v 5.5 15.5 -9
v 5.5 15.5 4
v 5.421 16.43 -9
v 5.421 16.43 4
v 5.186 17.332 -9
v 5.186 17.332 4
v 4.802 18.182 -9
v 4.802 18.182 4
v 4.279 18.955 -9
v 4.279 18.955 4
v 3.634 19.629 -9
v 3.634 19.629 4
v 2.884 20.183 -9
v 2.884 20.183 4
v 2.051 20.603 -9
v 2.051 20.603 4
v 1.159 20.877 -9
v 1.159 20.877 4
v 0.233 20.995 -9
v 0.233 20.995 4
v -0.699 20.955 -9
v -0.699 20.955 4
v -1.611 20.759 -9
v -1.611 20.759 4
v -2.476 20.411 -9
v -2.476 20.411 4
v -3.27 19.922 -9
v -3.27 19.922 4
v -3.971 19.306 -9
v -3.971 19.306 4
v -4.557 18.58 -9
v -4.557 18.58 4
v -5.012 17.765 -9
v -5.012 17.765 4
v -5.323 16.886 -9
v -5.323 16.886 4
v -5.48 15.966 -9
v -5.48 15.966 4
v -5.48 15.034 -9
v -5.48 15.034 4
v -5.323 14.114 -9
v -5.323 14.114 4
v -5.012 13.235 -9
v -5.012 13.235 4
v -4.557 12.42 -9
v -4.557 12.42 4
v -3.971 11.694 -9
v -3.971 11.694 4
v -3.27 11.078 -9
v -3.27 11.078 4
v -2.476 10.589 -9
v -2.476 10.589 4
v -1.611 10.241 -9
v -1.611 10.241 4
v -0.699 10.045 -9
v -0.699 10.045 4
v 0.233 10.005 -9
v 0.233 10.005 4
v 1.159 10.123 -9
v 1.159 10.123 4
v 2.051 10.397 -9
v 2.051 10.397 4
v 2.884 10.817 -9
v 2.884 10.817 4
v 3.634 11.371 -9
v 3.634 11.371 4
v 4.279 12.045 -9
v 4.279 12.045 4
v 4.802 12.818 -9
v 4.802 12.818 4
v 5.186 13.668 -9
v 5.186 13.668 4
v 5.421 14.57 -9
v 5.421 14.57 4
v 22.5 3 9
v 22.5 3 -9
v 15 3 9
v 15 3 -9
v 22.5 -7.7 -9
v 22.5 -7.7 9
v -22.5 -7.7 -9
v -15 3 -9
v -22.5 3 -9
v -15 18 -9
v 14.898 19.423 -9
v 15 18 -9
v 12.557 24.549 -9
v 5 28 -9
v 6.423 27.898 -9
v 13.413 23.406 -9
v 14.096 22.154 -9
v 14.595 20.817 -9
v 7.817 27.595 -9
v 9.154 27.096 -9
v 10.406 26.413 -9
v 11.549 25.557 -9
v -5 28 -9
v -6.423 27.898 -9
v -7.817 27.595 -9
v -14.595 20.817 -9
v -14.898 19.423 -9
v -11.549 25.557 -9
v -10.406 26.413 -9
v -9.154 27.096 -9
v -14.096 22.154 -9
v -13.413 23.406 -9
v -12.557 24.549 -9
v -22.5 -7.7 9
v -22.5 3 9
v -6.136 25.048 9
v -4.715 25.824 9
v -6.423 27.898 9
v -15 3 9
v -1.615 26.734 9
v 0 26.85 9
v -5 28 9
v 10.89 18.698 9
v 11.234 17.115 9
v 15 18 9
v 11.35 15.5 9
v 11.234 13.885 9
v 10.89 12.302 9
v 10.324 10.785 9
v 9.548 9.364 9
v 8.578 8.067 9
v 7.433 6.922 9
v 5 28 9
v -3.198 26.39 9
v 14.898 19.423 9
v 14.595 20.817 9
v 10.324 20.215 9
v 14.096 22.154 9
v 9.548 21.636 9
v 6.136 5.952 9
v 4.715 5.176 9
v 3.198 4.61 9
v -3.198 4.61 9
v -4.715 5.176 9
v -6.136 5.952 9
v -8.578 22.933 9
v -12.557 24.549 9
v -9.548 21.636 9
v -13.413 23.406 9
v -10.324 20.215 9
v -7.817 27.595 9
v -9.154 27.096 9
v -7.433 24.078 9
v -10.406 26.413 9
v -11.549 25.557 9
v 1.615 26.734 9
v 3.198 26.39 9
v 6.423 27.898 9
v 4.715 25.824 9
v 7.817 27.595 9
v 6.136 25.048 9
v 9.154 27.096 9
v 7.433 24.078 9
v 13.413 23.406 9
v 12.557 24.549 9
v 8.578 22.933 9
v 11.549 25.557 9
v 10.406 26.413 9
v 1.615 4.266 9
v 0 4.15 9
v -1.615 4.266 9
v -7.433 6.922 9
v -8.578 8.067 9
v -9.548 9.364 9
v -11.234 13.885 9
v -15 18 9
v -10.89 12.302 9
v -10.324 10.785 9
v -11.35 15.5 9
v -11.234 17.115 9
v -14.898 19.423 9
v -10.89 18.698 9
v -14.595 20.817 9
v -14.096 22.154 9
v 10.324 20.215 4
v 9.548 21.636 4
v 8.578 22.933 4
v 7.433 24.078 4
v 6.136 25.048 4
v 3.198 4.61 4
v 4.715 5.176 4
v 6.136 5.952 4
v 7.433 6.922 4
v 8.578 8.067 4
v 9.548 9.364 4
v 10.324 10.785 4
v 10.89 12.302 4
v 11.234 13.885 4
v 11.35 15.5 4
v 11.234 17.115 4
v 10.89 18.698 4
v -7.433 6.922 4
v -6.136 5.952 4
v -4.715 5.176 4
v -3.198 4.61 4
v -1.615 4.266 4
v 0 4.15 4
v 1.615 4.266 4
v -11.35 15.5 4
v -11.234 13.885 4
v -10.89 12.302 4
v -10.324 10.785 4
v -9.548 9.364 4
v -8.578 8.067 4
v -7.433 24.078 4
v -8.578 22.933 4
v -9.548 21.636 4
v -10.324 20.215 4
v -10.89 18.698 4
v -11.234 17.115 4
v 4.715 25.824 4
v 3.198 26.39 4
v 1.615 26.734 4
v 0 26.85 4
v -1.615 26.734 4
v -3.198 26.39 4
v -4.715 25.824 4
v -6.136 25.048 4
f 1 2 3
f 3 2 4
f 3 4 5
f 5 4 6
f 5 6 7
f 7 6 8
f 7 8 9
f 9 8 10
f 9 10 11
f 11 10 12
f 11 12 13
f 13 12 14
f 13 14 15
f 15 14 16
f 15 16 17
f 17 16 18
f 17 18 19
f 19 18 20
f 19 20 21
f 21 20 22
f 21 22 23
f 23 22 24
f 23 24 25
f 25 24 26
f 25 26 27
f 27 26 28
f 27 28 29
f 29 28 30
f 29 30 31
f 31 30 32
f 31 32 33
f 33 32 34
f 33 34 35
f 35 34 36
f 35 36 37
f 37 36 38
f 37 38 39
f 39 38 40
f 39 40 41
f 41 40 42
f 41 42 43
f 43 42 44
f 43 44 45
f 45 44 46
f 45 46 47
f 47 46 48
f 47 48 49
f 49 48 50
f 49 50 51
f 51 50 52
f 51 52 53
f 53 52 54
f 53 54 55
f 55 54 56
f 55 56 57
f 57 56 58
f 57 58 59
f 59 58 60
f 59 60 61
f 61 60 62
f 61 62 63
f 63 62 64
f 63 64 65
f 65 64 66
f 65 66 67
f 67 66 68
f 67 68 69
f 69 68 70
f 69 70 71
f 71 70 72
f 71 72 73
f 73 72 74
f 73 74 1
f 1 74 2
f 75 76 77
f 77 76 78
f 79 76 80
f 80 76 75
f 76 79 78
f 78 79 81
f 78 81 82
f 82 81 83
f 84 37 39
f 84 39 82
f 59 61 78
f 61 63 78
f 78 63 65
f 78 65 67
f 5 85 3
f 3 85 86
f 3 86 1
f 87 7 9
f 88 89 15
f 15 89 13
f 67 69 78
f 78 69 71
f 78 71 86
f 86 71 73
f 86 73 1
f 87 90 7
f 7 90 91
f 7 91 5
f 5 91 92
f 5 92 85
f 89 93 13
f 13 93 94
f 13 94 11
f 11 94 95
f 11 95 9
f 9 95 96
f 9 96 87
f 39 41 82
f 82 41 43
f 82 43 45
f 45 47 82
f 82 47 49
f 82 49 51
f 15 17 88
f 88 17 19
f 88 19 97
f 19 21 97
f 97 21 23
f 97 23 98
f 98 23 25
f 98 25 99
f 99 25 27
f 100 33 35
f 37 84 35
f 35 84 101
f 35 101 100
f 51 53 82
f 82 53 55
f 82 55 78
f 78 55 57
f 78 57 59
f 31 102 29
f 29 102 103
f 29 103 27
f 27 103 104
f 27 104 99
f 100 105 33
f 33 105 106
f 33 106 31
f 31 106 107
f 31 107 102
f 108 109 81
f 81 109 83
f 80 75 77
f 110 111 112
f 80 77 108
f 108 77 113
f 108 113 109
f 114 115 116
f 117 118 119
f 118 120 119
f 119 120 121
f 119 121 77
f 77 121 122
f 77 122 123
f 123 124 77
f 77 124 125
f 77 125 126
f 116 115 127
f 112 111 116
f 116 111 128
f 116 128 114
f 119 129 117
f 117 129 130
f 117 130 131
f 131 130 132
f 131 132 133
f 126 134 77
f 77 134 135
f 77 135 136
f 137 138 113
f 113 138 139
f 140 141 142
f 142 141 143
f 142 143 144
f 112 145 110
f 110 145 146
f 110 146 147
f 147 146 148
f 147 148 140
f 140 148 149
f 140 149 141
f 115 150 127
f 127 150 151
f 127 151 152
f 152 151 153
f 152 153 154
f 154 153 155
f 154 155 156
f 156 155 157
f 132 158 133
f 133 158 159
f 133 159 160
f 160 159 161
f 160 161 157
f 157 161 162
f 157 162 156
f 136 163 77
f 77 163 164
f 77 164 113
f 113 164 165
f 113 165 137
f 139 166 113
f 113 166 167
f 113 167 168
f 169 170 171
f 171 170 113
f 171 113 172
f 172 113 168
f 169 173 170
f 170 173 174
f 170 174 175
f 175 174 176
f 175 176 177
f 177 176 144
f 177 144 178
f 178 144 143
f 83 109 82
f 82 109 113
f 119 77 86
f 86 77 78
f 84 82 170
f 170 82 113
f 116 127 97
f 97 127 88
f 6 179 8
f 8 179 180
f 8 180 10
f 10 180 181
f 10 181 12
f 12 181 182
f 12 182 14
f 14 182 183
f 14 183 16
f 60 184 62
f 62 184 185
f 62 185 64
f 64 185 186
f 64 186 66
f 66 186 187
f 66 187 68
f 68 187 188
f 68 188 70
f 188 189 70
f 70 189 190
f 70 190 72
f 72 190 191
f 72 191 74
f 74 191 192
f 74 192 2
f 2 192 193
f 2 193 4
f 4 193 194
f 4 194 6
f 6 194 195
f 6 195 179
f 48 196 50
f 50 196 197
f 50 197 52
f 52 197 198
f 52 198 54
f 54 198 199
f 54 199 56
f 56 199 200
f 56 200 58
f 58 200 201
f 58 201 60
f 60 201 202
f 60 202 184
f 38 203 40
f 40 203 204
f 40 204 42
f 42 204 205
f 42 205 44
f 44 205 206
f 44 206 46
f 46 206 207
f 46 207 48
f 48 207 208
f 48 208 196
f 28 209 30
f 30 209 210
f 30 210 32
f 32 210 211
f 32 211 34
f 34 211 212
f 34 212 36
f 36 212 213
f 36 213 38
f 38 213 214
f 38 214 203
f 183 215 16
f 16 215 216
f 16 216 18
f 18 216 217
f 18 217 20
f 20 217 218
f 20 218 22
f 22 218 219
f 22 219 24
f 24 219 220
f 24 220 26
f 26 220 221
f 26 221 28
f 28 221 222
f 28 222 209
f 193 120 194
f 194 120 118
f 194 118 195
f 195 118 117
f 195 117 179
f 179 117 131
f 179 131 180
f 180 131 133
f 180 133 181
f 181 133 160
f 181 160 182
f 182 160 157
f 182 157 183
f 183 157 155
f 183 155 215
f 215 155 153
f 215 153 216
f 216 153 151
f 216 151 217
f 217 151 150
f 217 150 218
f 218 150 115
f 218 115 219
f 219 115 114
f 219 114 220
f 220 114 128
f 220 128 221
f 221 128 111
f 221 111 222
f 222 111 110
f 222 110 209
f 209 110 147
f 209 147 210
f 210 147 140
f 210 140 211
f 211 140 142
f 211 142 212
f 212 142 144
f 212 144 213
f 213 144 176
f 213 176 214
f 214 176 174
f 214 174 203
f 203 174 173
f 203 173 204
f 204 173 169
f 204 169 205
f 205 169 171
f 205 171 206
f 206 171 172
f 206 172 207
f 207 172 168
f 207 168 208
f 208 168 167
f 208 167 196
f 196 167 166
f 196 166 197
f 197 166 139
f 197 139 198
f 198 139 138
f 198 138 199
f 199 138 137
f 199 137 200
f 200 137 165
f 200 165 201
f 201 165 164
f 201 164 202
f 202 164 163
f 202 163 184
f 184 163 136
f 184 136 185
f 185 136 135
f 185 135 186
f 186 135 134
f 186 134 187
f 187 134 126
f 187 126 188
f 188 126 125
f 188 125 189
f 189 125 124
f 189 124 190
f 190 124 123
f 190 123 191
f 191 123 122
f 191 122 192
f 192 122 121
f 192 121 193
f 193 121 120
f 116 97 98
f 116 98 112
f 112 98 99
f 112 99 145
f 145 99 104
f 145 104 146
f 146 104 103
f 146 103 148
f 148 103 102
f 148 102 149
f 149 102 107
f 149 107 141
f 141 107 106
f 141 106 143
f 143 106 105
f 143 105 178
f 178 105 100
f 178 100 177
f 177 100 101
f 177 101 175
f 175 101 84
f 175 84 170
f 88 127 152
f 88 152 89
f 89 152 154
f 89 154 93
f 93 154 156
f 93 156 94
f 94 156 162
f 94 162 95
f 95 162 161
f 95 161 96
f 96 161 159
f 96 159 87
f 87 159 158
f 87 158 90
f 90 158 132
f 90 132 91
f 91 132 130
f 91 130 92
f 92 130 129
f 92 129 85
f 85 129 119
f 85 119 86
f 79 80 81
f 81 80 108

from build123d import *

# Parameters (mm, degrees)
SKETCH1_W           = 45
SKETCH1_H           = 18
BOSS_EXTRUDE1_DEPTH = 3
SKETCH2_W           = 30
SKETCH2_H           = 18
BOSS_EXTRUDE3_DEPTH = 25
SKETCH5_R           = 5.5
CUT_EXTRUDE3_DEPTH  = 25
SKETCH6_R           = 11.35
CUT_EXTRUDE4_DEPTH  = 5
FILLET2_R           = 10
SKETCH7_W           = 45
SKETCH7_H           = 18
BOSS_EXTRUDE4_DEPTH = 4
SKETCH8_W           = 45
SKETCH8_H           = 18
BOSS_EXTRUDE5_DEPTH = 3.7


with BuildPart() as part:
    # Sketch1 → Boss-Extrude1 (new body)
    with BuildSketch(Plane(origin=(0, 0, 0), x_dir=(1, 0, 0), z_dir=(0, 1, 0))):
        Rectangle(SKETCH1_W, SKETCH1_H)
    extrude(amount=BOSS_EXTRUDE1_DEPTH)

    # Sketch2 → Boss-Extrude3 (add)
    with BuildSketch(Plane(origin=(0, 3, 0), x_dir=(1, 0, 0), z_dir=(0, 1, 0))):
        Rectangle(SKETCH2_W, SKETCH2_H)
    extrude(amount=BOSS_EXTRUDE3_DEPTH)

    # Sketch5 → Cut-Extrude3 (cut)
    with BuildSketch(Plane.XY.offset(9)):
        with Locations((0, 15.5)):
            Circle(SKETCH5_R)
    extrude(amount=-CUT_EXTRUDE3_DEPTH, mode=Mode.SUBTRACT)

    # Sketch6 → Cut-Extrude4 (cut)
    with BuildSketch(Plane.XY.offset(9)):
        with Locations((0, 15.5)):
            Circle(SKETCH6_R)
    extrude(amount=-CUT_EXTRUDE4_DEPTH, mode=Mode.SUBTRACT)

    # Fillet2
    fillet2_edges = [part.edges().sort_by_distance(p)[0] for p in [
        (15, 28, 0),
        (-15, 28, 0),
    ]]
    fillet(fillet2_edges, radius=FILLET2_R)

    # Sketch7 → Boss-Extrude4 (add)
    with BuildSketch(Plane.XZ):
        Rectangle(SKETCH7_W, SKETCH7_H)
    extrude(amount=BOSS_EXTRUDE4_DEPTH)

    # Sketch8 → Boss-Extrude5 (add)
    with BuildSketch(Plane.XZ.offset(4)):
        Rectangle(SKETCH8_W, SKETCH8_H)
    extrude(amount=BOSS_EXTRUDE5_DEPTH)


solid = part.part
